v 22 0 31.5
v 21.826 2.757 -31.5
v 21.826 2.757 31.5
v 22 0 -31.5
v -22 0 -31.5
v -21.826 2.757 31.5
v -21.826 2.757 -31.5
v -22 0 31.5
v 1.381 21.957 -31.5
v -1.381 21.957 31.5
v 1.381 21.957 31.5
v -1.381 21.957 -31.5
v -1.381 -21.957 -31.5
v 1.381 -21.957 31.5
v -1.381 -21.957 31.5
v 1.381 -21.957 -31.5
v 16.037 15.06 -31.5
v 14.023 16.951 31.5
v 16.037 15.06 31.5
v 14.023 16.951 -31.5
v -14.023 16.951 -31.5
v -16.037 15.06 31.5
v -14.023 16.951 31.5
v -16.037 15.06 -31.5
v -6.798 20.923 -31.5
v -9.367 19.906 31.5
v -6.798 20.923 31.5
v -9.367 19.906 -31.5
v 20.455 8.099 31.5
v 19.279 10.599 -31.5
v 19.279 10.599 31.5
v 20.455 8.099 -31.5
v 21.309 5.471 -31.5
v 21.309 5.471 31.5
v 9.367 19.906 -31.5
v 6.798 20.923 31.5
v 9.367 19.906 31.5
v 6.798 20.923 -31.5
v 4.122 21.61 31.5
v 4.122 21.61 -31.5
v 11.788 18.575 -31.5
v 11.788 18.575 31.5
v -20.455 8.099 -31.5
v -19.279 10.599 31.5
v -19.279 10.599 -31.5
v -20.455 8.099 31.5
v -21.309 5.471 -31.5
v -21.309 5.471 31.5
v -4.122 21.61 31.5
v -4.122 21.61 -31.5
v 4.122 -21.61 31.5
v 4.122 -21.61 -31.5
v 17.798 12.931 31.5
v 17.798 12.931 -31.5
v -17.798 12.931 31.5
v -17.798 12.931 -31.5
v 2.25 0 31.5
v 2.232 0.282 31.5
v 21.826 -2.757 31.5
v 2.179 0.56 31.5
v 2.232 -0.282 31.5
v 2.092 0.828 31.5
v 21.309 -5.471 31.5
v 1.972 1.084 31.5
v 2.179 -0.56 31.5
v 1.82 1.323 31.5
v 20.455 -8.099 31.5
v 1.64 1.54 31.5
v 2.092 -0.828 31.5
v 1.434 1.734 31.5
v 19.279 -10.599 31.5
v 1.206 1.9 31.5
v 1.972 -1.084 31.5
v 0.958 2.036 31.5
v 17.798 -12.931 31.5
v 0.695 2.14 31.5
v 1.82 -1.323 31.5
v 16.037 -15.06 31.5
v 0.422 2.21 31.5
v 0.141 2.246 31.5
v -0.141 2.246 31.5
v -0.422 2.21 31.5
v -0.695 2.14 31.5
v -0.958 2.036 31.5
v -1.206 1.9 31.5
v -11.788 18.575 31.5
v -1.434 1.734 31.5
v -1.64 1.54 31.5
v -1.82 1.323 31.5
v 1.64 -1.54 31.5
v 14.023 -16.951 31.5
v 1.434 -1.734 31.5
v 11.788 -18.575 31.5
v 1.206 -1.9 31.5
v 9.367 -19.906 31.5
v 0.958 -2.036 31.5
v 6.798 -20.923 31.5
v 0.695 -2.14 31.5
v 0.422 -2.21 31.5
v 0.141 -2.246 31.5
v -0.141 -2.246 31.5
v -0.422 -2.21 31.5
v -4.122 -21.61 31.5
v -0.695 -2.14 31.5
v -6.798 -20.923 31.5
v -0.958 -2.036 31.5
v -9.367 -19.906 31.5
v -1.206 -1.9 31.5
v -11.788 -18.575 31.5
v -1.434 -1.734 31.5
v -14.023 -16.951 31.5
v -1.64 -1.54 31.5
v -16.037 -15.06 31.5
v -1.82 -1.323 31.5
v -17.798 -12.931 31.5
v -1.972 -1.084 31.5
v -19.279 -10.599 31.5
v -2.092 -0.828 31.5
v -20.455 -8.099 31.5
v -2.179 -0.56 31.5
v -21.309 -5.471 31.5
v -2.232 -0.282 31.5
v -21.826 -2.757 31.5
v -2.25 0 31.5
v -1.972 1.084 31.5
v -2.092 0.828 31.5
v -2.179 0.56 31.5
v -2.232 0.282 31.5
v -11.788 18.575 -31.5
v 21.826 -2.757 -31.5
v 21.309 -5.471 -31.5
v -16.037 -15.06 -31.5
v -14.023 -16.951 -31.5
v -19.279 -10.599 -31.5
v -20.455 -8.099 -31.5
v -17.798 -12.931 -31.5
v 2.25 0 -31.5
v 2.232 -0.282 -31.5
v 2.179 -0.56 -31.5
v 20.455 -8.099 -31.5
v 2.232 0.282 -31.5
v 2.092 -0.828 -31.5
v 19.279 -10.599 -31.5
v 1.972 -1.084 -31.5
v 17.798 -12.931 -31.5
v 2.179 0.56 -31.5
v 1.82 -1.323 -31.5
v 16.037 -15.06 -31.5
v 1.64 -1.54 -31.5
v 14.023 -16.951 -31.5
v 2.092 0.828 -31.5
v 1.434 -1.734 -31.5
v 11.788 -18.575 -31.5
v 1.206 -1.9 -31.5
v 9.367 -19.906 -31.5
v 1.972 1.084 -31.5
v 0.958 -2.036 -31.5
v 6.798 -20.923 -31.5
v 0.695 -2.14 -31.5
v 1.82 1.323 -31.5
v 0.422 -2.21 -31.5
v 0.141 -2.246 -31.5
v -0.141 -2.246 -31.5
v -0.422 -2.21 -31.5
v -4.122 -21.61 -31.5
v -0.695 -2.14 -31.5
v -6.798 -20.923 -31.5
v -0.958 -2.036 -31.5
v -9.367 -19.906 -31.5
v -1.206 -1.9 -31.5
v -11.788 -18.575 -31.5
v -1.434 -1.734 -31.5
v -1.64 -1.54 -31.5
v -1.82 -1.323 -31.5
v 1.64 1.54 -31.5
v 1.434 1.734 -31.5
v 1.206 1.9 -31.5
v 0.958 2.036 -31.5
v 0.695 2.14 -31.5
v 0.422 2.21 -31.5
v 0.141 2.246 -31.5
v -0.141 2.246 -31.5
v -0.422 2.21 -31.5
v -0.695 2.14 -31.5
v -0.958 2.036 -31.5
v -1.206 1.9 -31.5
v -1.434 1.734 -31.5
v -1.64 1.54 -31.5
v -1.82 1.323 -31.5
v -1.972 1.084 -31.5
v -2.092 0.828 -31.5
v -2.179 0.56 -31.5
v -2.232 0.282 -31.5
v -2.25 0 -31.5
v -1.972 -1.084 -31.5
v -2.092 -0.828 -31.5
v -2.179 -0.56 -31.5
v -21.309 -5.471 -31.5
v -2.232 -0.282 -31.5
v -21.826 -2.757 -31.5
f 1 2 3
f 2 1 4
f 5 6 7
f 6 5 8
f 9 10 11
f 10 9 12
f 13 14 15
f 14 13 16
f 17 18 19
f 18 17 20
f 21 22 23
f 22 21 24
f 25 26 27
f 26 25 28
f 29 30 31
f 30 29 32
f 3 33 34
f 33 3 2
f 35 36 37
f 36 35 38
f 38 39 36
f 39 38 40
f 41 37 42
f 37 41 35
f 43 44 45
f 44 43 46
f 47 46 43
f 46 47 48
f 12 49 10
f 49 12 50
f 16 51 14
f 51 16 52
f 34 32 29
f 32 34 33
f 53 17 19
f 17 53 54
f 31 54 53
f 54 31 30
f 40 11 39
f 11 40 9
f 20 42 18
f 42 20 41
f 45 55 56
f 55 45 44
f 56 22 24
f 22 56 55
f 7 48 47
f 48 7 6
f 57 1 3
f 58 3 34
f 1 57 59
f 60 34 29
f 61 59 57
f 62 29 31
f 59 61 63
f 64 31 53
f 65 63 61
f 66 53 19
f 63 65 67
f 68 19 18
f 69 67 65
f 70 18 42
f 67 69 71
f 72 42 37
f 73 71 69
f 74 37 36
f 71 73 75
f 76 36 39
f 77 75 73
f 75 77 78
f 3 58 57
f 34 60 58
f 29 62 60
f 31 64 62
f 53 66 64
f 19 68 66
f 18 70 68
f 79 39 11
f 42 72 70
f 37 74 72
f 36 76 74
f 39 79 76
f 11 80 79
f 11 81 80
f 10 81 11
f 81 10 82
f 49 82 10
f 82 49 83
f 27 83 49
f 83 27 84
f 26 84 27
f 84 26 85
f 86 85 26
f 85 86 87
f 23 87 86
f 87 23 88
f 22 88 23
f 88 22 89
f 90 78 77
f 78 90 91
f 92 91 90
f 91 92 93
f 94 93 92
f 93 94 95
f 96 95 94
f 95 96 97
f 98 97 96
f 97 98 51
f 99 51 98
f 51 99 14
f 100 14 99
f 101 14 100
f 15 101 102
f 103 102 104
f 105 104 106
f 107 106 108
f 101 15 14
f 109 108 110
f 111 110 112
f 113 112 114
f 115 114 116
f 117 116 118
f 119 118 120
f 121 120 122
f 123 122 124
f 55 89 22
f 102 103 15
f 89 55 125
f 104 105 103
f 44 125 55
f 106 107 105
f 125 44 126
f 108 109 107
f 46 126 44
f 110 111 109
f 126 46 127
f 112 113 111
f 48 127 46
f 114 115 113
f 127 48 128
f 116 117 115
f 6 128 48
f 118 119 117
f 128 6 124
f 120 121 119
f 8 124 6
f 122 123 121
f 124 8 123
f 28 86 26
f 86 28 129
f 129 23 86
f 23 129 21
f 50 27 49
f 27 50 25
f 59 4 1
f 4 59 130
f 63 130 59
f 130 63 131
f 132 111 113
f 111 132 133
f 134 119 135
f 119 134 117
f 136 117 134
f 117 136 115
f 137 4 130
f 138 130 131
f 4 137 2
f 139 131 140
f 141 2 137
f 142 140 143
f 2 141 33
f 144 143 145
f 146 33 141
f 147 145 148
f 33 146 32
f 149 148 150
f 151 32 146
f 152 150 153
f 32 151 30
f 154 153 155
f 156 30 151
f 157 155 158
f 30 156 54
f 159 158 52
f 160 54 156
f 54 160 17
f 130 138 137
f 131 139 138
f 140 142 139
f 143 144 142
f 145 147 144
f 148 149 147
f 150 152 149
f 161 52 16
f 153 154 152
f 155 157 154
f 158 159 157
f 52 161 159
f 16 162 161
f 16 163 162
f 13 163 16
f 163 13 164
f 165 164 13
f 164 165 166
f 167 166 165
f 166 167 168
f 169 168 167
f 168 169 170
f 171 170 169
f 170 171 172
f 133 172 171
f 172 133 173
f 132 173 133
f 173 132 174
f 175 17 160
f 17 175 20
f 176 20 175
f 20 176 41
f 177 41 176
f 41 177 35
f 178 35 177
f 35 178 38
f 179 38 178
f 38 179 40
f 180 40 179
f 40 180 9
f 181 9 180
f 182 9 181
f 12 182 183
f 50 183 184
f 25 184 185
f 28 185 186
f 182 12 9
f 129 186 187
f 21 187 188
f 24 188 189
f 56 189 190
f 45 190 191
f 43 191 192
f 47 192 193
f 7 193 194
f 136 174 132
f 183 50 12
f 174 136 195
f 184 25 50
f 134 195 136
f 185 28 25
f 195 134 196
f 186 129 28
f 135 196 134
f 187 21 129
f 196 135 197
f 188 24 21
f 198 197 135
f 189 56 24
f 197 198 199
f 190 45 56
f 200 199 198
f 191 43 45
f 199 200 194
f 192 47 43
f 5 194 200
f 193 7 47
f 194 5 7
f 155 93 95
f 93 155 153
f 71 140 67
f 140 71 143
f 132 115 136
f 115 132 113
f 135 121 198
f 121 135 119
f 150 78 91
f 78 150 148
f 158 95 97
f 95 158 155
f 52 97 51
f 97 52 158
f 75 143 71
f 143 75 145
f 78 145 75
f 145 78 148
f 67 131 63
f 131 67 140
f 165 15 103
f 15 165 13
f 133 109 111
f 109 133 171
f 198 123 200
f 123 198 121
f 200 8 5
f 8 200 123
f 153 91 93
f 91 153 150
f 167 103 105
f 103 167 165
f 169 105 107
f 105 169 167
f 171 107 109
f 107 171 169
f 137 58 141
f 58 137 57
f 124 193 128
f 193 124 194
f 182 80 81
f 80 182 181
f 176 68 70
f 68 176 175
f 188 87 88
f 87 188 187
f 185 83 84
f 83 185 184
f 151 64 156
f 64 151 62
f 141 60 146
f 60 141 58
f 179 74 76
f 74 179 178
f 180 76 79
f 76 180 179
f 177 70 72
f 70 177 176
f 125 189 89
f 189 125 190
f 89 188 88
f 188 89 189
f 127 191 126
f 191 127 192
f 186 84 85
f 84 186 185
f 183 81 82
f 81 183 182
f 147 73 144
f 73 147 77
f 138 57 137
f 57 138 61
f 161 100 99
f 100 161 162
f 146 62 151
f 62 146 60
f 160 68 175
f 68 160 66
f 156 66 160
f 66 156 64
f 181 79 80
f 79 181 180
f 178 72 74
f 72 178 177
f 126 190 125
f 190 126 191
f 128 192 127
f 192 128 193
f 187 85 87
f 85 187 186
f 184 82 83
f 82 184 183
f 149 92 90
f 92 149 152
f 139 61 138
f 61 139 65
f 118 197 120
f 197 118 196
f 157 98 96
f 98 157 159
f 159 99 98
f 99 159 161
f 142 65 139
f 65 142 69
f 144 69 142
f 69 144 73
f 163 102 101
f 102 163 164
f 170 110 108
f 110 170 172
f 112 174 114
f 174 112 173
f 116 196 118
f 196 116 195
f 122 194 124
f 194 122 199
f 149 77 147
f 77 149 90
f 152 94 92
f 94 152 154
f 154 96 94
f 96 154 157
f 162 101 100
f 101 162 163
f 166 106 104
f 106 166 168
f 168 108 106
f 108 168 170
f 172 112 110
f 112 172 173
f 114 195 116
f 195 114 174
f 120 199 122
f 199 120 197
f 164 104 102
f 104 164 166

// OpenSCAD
$fn = 50;


difference() {
	union() {
		translate(v = [0, 0, -31.5000000000]) {
			cylinder(h = 63, r = 22.0000000000);
		}
	}
	union() {
		translate(v = [0, 0, -100.0000000000]) {
			cylinder(h = 200, r = 2.2500000000);
		}
	}
}
